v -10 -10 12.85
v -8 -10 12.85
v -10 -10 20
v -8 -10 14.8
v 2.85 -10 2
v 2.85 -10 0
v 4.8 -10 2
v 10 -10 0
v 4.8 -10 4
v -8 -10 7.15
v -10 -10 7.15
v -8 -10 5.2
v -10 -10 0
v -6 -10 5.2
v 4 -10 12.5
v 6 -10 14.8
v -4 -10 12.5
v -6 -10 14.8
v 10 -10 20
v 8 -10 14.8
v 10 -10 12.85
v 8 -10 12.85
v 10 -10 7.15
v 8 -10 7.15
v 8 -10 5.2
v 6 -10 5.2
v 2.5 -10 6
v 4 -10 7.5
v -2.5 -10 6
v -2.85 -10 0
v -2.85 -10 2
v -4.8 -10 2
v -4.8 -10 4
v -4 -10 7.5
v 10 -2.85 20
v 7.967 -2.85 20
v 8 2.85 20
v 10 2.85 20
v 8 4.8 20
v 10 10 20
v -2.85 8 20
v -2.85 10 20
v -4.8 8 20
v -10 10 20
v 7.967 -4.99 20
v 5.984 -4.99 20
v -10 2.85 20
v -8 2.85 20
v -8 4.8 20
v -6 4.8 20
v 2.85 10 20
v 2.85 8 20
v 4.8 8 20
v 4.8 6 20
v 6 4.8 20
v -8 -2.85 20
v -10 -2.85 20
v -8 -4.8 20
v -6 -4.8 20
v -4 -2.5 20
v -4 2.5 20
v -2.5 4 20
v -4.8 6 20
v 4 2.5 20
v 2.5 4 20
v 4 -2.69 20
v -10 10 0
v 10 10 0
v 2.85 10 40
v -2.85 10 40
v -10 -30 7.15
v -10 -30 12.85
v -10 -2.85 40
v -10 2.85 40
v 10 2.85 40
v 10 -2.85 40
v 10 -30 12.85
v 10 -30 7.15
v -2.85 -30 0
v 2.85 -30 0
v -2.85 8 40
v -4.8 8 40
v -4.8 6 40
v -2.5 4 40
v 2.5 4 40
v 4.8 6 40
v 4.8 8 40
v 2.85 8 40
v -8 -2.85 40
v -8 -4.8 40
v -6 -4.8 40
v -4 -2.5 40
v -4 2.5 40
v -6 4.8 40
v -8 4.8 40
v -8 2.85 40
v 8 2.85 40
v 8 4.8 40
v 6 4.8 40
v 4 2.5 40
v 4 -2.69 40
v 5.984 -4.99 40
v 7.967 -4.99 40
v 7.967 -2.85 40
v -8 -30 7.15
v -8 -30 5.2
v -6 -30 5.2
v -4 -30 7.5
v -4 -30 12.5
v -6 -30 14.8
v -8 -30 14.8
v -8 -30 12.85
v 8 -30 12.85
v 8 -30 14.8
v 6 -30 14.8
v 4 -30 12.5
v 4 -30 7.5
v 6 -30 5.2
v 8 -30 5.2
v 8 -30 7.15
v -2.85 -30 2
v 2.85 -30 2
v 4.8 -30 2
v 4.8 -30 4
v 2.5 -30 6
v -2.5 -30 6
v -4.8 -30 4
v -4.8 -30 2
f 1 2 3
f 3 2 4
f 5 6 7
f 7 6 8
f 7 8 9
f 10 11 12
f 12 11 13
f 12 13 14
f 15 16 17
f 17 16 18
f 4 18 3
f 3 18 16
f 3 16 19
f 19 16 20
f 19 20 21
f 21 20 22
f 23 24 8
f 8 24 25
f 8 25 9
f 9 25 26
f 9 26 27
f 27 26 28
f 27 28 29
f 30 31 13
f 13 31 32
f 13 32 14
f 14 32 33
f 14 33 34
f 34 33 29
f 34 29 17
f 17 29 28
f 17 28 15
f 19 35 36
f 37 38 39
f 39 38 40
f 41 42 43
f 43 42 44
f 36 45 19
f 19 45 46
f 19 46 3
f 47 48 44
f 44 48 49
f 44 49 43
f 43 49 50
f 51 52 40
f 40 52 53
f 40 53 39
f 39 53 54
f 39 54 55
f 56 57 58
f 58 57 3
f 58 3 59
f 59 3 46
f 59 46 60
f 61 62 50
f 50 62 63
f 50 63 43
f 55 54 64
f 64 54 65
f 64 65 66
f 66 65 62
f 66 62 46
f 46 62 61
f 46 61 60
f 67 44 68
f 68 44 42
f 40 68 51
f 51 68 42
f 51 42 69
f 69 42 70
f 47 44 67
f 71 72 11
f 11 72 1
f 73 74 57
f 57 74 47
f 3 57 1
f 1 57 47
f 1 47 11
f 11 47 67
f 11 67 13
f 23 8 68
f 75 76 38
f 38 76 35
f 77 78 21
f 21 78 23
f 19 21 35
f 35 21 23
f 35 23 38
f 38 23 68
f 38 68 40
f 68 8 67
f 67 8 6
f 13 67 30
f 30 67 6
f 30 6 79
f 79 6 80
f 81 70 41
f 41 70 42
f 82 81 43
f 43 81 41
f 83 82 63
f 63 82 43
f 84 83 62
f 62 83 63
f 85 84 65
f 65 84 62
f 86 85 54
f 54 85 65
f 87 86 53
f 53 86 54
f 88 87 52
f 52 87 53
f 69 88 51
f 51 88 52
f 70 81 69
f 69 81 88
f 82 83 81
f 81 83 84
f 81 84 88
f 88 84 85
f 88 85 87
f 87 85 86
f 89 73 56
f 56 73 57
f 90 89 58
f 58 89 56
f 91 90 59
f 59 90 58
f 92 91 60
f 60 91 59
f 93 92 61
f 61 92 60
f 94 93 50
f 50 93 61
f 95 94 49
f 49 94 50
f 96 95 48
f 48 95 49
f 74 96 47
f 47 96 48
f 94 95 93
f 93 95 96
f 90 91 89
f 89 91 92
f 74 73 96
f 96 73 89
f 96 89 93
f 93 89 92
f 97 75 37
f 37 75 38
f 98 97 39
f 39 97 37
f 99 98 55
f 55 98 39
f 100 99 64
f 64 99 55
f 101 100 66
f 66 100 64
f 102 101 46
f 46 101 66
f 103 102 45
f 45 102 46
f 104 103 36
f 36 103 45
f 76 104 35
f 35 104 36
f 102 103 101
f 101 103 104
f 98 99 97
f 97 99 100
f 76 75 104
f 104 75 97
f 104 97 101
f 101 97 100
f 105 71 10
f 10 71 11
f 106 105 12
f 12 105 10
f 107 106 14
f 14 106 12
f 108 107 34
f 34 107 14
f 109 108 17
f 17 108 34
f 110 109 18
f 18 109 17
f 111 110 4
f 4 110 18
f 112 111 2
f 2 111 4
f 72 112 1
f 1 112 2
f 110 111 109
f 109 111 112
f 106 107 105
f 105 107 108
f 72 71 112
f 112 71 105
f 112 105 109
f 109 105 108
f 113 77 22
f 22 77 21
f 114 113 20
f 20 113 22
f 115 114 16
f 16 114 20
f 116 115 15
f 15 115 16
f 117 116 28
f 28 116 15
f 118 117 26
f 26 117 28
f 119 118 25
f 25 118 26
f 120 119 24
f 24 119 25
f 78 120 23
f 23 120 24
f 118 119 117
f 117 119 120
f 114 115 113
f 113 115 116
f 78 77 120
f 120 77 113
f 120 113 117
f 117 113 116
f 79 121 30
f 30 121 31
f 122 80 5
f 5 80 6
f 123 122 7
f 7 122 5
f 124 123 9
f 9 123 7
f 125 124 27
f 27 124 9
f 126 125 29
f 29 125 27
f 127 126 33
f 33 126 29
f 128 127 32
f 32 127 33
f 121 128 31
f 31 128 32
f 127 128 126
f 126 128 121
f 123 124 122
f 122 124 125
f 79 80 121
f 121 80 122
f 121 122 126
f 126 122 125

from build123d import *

# Parameters (mm, degrees)
SKETCH1_W           = 20
SKETCH1_H           = 20
BOSS_EXTRUDE1_DEPTH = 20
BOSS_EXTRUDE2_DEPTH = 20
BOSS_EXTRUDE3_DEPTH = 20
BOSS_EXTRUDE4_DEPTH = 20
BOSS_EXTRUDE5_DEPTH = 20


with BuildPart() as part:
    # Sketch1 → Boss-Extrude1 (new body)
    with BuildSketch(Plane.XY):
        Rectangle(SKETCH1_W, SKETCH1_H)
    extrude(amount=BOSS_EXTRUDE1_DEPTH)

    # Sketch2 → Boss-Extrude2 (add)
    with BuildSketch(Plane.XY.offset(20)):
        Polygon((2.85, 10), (2.85, 8), (4.8, 8), (4.8, 6), (2.5, 4), (-2.5, 4), (-4.8, 6), (-4.8, 8), (-2.85, 8), (-2.85, 10), align=None)
    extrude(amount=BOSS_EXTRUDE2_DEPTH)

    # Sketch3 → Boss-Extrude3 (add)
    with BuildSketch(Plane.XY.offset(20)):
        Polygon((-10, 2.85), (-8, 2.85), (-8, 4.8), (-6, 4.8), (-4, 2.5), (-4, -2.5), (-6, -4.8), (-8, -4.8), (-8, -2.85), (-10, -2.85), align=None)
    extrude(amount=BOSS_EXTRUDE3_DEPTH)

    # Sketch4 → Boss-Extrude4 (add)
    with BuildSketch(Plane.XY.offset(20)):
        Polygon((10, 2.85), (8, 2.85), (8, 4.8), (6, 4.8), (4, 2.5), (4, -2.689613267), (5.983673404, -4.989613267), (7.967346808, -4.989613267), (7.967346808, -2.85), (10, -2.85), align=None)
    extrude(amount=BOSS_EXTRUDE4_DEPTH)

    # Sketch5 → Boss-Extrude5 (add)
    with BuildSketch(Plane.XZ.offset(10)):
        Polygon((-10, 12.85), (-8, 12.85), (-8, 14.8), (-6, 14.8), (-4, 12.5), (-4, 7.5), (-6, 5.2), (-8, 5.2), (-8, 7.15), (-10, 7.15), align=None)
        Polygon((10, 12.85), (8, 12.85), (8, 14.8), (6, 14.8), (4, 12.5), (4, 7.5), (6, 5.2), (8, 5.2), (8, 7.15), (10, 7.15), align=None)
        Polygon((-2.85, 0), (2.85, 0), (2.85, 2), (4.8, 2), (4.8, 4), (2.5, 6), (-2.5, 6), (-4.8, 4), (-4.8, 2), (-2.85, 2), align=None)
    extrude(amount=BOSS_EXTRUDE5_DEPTH)


solid = part.part
